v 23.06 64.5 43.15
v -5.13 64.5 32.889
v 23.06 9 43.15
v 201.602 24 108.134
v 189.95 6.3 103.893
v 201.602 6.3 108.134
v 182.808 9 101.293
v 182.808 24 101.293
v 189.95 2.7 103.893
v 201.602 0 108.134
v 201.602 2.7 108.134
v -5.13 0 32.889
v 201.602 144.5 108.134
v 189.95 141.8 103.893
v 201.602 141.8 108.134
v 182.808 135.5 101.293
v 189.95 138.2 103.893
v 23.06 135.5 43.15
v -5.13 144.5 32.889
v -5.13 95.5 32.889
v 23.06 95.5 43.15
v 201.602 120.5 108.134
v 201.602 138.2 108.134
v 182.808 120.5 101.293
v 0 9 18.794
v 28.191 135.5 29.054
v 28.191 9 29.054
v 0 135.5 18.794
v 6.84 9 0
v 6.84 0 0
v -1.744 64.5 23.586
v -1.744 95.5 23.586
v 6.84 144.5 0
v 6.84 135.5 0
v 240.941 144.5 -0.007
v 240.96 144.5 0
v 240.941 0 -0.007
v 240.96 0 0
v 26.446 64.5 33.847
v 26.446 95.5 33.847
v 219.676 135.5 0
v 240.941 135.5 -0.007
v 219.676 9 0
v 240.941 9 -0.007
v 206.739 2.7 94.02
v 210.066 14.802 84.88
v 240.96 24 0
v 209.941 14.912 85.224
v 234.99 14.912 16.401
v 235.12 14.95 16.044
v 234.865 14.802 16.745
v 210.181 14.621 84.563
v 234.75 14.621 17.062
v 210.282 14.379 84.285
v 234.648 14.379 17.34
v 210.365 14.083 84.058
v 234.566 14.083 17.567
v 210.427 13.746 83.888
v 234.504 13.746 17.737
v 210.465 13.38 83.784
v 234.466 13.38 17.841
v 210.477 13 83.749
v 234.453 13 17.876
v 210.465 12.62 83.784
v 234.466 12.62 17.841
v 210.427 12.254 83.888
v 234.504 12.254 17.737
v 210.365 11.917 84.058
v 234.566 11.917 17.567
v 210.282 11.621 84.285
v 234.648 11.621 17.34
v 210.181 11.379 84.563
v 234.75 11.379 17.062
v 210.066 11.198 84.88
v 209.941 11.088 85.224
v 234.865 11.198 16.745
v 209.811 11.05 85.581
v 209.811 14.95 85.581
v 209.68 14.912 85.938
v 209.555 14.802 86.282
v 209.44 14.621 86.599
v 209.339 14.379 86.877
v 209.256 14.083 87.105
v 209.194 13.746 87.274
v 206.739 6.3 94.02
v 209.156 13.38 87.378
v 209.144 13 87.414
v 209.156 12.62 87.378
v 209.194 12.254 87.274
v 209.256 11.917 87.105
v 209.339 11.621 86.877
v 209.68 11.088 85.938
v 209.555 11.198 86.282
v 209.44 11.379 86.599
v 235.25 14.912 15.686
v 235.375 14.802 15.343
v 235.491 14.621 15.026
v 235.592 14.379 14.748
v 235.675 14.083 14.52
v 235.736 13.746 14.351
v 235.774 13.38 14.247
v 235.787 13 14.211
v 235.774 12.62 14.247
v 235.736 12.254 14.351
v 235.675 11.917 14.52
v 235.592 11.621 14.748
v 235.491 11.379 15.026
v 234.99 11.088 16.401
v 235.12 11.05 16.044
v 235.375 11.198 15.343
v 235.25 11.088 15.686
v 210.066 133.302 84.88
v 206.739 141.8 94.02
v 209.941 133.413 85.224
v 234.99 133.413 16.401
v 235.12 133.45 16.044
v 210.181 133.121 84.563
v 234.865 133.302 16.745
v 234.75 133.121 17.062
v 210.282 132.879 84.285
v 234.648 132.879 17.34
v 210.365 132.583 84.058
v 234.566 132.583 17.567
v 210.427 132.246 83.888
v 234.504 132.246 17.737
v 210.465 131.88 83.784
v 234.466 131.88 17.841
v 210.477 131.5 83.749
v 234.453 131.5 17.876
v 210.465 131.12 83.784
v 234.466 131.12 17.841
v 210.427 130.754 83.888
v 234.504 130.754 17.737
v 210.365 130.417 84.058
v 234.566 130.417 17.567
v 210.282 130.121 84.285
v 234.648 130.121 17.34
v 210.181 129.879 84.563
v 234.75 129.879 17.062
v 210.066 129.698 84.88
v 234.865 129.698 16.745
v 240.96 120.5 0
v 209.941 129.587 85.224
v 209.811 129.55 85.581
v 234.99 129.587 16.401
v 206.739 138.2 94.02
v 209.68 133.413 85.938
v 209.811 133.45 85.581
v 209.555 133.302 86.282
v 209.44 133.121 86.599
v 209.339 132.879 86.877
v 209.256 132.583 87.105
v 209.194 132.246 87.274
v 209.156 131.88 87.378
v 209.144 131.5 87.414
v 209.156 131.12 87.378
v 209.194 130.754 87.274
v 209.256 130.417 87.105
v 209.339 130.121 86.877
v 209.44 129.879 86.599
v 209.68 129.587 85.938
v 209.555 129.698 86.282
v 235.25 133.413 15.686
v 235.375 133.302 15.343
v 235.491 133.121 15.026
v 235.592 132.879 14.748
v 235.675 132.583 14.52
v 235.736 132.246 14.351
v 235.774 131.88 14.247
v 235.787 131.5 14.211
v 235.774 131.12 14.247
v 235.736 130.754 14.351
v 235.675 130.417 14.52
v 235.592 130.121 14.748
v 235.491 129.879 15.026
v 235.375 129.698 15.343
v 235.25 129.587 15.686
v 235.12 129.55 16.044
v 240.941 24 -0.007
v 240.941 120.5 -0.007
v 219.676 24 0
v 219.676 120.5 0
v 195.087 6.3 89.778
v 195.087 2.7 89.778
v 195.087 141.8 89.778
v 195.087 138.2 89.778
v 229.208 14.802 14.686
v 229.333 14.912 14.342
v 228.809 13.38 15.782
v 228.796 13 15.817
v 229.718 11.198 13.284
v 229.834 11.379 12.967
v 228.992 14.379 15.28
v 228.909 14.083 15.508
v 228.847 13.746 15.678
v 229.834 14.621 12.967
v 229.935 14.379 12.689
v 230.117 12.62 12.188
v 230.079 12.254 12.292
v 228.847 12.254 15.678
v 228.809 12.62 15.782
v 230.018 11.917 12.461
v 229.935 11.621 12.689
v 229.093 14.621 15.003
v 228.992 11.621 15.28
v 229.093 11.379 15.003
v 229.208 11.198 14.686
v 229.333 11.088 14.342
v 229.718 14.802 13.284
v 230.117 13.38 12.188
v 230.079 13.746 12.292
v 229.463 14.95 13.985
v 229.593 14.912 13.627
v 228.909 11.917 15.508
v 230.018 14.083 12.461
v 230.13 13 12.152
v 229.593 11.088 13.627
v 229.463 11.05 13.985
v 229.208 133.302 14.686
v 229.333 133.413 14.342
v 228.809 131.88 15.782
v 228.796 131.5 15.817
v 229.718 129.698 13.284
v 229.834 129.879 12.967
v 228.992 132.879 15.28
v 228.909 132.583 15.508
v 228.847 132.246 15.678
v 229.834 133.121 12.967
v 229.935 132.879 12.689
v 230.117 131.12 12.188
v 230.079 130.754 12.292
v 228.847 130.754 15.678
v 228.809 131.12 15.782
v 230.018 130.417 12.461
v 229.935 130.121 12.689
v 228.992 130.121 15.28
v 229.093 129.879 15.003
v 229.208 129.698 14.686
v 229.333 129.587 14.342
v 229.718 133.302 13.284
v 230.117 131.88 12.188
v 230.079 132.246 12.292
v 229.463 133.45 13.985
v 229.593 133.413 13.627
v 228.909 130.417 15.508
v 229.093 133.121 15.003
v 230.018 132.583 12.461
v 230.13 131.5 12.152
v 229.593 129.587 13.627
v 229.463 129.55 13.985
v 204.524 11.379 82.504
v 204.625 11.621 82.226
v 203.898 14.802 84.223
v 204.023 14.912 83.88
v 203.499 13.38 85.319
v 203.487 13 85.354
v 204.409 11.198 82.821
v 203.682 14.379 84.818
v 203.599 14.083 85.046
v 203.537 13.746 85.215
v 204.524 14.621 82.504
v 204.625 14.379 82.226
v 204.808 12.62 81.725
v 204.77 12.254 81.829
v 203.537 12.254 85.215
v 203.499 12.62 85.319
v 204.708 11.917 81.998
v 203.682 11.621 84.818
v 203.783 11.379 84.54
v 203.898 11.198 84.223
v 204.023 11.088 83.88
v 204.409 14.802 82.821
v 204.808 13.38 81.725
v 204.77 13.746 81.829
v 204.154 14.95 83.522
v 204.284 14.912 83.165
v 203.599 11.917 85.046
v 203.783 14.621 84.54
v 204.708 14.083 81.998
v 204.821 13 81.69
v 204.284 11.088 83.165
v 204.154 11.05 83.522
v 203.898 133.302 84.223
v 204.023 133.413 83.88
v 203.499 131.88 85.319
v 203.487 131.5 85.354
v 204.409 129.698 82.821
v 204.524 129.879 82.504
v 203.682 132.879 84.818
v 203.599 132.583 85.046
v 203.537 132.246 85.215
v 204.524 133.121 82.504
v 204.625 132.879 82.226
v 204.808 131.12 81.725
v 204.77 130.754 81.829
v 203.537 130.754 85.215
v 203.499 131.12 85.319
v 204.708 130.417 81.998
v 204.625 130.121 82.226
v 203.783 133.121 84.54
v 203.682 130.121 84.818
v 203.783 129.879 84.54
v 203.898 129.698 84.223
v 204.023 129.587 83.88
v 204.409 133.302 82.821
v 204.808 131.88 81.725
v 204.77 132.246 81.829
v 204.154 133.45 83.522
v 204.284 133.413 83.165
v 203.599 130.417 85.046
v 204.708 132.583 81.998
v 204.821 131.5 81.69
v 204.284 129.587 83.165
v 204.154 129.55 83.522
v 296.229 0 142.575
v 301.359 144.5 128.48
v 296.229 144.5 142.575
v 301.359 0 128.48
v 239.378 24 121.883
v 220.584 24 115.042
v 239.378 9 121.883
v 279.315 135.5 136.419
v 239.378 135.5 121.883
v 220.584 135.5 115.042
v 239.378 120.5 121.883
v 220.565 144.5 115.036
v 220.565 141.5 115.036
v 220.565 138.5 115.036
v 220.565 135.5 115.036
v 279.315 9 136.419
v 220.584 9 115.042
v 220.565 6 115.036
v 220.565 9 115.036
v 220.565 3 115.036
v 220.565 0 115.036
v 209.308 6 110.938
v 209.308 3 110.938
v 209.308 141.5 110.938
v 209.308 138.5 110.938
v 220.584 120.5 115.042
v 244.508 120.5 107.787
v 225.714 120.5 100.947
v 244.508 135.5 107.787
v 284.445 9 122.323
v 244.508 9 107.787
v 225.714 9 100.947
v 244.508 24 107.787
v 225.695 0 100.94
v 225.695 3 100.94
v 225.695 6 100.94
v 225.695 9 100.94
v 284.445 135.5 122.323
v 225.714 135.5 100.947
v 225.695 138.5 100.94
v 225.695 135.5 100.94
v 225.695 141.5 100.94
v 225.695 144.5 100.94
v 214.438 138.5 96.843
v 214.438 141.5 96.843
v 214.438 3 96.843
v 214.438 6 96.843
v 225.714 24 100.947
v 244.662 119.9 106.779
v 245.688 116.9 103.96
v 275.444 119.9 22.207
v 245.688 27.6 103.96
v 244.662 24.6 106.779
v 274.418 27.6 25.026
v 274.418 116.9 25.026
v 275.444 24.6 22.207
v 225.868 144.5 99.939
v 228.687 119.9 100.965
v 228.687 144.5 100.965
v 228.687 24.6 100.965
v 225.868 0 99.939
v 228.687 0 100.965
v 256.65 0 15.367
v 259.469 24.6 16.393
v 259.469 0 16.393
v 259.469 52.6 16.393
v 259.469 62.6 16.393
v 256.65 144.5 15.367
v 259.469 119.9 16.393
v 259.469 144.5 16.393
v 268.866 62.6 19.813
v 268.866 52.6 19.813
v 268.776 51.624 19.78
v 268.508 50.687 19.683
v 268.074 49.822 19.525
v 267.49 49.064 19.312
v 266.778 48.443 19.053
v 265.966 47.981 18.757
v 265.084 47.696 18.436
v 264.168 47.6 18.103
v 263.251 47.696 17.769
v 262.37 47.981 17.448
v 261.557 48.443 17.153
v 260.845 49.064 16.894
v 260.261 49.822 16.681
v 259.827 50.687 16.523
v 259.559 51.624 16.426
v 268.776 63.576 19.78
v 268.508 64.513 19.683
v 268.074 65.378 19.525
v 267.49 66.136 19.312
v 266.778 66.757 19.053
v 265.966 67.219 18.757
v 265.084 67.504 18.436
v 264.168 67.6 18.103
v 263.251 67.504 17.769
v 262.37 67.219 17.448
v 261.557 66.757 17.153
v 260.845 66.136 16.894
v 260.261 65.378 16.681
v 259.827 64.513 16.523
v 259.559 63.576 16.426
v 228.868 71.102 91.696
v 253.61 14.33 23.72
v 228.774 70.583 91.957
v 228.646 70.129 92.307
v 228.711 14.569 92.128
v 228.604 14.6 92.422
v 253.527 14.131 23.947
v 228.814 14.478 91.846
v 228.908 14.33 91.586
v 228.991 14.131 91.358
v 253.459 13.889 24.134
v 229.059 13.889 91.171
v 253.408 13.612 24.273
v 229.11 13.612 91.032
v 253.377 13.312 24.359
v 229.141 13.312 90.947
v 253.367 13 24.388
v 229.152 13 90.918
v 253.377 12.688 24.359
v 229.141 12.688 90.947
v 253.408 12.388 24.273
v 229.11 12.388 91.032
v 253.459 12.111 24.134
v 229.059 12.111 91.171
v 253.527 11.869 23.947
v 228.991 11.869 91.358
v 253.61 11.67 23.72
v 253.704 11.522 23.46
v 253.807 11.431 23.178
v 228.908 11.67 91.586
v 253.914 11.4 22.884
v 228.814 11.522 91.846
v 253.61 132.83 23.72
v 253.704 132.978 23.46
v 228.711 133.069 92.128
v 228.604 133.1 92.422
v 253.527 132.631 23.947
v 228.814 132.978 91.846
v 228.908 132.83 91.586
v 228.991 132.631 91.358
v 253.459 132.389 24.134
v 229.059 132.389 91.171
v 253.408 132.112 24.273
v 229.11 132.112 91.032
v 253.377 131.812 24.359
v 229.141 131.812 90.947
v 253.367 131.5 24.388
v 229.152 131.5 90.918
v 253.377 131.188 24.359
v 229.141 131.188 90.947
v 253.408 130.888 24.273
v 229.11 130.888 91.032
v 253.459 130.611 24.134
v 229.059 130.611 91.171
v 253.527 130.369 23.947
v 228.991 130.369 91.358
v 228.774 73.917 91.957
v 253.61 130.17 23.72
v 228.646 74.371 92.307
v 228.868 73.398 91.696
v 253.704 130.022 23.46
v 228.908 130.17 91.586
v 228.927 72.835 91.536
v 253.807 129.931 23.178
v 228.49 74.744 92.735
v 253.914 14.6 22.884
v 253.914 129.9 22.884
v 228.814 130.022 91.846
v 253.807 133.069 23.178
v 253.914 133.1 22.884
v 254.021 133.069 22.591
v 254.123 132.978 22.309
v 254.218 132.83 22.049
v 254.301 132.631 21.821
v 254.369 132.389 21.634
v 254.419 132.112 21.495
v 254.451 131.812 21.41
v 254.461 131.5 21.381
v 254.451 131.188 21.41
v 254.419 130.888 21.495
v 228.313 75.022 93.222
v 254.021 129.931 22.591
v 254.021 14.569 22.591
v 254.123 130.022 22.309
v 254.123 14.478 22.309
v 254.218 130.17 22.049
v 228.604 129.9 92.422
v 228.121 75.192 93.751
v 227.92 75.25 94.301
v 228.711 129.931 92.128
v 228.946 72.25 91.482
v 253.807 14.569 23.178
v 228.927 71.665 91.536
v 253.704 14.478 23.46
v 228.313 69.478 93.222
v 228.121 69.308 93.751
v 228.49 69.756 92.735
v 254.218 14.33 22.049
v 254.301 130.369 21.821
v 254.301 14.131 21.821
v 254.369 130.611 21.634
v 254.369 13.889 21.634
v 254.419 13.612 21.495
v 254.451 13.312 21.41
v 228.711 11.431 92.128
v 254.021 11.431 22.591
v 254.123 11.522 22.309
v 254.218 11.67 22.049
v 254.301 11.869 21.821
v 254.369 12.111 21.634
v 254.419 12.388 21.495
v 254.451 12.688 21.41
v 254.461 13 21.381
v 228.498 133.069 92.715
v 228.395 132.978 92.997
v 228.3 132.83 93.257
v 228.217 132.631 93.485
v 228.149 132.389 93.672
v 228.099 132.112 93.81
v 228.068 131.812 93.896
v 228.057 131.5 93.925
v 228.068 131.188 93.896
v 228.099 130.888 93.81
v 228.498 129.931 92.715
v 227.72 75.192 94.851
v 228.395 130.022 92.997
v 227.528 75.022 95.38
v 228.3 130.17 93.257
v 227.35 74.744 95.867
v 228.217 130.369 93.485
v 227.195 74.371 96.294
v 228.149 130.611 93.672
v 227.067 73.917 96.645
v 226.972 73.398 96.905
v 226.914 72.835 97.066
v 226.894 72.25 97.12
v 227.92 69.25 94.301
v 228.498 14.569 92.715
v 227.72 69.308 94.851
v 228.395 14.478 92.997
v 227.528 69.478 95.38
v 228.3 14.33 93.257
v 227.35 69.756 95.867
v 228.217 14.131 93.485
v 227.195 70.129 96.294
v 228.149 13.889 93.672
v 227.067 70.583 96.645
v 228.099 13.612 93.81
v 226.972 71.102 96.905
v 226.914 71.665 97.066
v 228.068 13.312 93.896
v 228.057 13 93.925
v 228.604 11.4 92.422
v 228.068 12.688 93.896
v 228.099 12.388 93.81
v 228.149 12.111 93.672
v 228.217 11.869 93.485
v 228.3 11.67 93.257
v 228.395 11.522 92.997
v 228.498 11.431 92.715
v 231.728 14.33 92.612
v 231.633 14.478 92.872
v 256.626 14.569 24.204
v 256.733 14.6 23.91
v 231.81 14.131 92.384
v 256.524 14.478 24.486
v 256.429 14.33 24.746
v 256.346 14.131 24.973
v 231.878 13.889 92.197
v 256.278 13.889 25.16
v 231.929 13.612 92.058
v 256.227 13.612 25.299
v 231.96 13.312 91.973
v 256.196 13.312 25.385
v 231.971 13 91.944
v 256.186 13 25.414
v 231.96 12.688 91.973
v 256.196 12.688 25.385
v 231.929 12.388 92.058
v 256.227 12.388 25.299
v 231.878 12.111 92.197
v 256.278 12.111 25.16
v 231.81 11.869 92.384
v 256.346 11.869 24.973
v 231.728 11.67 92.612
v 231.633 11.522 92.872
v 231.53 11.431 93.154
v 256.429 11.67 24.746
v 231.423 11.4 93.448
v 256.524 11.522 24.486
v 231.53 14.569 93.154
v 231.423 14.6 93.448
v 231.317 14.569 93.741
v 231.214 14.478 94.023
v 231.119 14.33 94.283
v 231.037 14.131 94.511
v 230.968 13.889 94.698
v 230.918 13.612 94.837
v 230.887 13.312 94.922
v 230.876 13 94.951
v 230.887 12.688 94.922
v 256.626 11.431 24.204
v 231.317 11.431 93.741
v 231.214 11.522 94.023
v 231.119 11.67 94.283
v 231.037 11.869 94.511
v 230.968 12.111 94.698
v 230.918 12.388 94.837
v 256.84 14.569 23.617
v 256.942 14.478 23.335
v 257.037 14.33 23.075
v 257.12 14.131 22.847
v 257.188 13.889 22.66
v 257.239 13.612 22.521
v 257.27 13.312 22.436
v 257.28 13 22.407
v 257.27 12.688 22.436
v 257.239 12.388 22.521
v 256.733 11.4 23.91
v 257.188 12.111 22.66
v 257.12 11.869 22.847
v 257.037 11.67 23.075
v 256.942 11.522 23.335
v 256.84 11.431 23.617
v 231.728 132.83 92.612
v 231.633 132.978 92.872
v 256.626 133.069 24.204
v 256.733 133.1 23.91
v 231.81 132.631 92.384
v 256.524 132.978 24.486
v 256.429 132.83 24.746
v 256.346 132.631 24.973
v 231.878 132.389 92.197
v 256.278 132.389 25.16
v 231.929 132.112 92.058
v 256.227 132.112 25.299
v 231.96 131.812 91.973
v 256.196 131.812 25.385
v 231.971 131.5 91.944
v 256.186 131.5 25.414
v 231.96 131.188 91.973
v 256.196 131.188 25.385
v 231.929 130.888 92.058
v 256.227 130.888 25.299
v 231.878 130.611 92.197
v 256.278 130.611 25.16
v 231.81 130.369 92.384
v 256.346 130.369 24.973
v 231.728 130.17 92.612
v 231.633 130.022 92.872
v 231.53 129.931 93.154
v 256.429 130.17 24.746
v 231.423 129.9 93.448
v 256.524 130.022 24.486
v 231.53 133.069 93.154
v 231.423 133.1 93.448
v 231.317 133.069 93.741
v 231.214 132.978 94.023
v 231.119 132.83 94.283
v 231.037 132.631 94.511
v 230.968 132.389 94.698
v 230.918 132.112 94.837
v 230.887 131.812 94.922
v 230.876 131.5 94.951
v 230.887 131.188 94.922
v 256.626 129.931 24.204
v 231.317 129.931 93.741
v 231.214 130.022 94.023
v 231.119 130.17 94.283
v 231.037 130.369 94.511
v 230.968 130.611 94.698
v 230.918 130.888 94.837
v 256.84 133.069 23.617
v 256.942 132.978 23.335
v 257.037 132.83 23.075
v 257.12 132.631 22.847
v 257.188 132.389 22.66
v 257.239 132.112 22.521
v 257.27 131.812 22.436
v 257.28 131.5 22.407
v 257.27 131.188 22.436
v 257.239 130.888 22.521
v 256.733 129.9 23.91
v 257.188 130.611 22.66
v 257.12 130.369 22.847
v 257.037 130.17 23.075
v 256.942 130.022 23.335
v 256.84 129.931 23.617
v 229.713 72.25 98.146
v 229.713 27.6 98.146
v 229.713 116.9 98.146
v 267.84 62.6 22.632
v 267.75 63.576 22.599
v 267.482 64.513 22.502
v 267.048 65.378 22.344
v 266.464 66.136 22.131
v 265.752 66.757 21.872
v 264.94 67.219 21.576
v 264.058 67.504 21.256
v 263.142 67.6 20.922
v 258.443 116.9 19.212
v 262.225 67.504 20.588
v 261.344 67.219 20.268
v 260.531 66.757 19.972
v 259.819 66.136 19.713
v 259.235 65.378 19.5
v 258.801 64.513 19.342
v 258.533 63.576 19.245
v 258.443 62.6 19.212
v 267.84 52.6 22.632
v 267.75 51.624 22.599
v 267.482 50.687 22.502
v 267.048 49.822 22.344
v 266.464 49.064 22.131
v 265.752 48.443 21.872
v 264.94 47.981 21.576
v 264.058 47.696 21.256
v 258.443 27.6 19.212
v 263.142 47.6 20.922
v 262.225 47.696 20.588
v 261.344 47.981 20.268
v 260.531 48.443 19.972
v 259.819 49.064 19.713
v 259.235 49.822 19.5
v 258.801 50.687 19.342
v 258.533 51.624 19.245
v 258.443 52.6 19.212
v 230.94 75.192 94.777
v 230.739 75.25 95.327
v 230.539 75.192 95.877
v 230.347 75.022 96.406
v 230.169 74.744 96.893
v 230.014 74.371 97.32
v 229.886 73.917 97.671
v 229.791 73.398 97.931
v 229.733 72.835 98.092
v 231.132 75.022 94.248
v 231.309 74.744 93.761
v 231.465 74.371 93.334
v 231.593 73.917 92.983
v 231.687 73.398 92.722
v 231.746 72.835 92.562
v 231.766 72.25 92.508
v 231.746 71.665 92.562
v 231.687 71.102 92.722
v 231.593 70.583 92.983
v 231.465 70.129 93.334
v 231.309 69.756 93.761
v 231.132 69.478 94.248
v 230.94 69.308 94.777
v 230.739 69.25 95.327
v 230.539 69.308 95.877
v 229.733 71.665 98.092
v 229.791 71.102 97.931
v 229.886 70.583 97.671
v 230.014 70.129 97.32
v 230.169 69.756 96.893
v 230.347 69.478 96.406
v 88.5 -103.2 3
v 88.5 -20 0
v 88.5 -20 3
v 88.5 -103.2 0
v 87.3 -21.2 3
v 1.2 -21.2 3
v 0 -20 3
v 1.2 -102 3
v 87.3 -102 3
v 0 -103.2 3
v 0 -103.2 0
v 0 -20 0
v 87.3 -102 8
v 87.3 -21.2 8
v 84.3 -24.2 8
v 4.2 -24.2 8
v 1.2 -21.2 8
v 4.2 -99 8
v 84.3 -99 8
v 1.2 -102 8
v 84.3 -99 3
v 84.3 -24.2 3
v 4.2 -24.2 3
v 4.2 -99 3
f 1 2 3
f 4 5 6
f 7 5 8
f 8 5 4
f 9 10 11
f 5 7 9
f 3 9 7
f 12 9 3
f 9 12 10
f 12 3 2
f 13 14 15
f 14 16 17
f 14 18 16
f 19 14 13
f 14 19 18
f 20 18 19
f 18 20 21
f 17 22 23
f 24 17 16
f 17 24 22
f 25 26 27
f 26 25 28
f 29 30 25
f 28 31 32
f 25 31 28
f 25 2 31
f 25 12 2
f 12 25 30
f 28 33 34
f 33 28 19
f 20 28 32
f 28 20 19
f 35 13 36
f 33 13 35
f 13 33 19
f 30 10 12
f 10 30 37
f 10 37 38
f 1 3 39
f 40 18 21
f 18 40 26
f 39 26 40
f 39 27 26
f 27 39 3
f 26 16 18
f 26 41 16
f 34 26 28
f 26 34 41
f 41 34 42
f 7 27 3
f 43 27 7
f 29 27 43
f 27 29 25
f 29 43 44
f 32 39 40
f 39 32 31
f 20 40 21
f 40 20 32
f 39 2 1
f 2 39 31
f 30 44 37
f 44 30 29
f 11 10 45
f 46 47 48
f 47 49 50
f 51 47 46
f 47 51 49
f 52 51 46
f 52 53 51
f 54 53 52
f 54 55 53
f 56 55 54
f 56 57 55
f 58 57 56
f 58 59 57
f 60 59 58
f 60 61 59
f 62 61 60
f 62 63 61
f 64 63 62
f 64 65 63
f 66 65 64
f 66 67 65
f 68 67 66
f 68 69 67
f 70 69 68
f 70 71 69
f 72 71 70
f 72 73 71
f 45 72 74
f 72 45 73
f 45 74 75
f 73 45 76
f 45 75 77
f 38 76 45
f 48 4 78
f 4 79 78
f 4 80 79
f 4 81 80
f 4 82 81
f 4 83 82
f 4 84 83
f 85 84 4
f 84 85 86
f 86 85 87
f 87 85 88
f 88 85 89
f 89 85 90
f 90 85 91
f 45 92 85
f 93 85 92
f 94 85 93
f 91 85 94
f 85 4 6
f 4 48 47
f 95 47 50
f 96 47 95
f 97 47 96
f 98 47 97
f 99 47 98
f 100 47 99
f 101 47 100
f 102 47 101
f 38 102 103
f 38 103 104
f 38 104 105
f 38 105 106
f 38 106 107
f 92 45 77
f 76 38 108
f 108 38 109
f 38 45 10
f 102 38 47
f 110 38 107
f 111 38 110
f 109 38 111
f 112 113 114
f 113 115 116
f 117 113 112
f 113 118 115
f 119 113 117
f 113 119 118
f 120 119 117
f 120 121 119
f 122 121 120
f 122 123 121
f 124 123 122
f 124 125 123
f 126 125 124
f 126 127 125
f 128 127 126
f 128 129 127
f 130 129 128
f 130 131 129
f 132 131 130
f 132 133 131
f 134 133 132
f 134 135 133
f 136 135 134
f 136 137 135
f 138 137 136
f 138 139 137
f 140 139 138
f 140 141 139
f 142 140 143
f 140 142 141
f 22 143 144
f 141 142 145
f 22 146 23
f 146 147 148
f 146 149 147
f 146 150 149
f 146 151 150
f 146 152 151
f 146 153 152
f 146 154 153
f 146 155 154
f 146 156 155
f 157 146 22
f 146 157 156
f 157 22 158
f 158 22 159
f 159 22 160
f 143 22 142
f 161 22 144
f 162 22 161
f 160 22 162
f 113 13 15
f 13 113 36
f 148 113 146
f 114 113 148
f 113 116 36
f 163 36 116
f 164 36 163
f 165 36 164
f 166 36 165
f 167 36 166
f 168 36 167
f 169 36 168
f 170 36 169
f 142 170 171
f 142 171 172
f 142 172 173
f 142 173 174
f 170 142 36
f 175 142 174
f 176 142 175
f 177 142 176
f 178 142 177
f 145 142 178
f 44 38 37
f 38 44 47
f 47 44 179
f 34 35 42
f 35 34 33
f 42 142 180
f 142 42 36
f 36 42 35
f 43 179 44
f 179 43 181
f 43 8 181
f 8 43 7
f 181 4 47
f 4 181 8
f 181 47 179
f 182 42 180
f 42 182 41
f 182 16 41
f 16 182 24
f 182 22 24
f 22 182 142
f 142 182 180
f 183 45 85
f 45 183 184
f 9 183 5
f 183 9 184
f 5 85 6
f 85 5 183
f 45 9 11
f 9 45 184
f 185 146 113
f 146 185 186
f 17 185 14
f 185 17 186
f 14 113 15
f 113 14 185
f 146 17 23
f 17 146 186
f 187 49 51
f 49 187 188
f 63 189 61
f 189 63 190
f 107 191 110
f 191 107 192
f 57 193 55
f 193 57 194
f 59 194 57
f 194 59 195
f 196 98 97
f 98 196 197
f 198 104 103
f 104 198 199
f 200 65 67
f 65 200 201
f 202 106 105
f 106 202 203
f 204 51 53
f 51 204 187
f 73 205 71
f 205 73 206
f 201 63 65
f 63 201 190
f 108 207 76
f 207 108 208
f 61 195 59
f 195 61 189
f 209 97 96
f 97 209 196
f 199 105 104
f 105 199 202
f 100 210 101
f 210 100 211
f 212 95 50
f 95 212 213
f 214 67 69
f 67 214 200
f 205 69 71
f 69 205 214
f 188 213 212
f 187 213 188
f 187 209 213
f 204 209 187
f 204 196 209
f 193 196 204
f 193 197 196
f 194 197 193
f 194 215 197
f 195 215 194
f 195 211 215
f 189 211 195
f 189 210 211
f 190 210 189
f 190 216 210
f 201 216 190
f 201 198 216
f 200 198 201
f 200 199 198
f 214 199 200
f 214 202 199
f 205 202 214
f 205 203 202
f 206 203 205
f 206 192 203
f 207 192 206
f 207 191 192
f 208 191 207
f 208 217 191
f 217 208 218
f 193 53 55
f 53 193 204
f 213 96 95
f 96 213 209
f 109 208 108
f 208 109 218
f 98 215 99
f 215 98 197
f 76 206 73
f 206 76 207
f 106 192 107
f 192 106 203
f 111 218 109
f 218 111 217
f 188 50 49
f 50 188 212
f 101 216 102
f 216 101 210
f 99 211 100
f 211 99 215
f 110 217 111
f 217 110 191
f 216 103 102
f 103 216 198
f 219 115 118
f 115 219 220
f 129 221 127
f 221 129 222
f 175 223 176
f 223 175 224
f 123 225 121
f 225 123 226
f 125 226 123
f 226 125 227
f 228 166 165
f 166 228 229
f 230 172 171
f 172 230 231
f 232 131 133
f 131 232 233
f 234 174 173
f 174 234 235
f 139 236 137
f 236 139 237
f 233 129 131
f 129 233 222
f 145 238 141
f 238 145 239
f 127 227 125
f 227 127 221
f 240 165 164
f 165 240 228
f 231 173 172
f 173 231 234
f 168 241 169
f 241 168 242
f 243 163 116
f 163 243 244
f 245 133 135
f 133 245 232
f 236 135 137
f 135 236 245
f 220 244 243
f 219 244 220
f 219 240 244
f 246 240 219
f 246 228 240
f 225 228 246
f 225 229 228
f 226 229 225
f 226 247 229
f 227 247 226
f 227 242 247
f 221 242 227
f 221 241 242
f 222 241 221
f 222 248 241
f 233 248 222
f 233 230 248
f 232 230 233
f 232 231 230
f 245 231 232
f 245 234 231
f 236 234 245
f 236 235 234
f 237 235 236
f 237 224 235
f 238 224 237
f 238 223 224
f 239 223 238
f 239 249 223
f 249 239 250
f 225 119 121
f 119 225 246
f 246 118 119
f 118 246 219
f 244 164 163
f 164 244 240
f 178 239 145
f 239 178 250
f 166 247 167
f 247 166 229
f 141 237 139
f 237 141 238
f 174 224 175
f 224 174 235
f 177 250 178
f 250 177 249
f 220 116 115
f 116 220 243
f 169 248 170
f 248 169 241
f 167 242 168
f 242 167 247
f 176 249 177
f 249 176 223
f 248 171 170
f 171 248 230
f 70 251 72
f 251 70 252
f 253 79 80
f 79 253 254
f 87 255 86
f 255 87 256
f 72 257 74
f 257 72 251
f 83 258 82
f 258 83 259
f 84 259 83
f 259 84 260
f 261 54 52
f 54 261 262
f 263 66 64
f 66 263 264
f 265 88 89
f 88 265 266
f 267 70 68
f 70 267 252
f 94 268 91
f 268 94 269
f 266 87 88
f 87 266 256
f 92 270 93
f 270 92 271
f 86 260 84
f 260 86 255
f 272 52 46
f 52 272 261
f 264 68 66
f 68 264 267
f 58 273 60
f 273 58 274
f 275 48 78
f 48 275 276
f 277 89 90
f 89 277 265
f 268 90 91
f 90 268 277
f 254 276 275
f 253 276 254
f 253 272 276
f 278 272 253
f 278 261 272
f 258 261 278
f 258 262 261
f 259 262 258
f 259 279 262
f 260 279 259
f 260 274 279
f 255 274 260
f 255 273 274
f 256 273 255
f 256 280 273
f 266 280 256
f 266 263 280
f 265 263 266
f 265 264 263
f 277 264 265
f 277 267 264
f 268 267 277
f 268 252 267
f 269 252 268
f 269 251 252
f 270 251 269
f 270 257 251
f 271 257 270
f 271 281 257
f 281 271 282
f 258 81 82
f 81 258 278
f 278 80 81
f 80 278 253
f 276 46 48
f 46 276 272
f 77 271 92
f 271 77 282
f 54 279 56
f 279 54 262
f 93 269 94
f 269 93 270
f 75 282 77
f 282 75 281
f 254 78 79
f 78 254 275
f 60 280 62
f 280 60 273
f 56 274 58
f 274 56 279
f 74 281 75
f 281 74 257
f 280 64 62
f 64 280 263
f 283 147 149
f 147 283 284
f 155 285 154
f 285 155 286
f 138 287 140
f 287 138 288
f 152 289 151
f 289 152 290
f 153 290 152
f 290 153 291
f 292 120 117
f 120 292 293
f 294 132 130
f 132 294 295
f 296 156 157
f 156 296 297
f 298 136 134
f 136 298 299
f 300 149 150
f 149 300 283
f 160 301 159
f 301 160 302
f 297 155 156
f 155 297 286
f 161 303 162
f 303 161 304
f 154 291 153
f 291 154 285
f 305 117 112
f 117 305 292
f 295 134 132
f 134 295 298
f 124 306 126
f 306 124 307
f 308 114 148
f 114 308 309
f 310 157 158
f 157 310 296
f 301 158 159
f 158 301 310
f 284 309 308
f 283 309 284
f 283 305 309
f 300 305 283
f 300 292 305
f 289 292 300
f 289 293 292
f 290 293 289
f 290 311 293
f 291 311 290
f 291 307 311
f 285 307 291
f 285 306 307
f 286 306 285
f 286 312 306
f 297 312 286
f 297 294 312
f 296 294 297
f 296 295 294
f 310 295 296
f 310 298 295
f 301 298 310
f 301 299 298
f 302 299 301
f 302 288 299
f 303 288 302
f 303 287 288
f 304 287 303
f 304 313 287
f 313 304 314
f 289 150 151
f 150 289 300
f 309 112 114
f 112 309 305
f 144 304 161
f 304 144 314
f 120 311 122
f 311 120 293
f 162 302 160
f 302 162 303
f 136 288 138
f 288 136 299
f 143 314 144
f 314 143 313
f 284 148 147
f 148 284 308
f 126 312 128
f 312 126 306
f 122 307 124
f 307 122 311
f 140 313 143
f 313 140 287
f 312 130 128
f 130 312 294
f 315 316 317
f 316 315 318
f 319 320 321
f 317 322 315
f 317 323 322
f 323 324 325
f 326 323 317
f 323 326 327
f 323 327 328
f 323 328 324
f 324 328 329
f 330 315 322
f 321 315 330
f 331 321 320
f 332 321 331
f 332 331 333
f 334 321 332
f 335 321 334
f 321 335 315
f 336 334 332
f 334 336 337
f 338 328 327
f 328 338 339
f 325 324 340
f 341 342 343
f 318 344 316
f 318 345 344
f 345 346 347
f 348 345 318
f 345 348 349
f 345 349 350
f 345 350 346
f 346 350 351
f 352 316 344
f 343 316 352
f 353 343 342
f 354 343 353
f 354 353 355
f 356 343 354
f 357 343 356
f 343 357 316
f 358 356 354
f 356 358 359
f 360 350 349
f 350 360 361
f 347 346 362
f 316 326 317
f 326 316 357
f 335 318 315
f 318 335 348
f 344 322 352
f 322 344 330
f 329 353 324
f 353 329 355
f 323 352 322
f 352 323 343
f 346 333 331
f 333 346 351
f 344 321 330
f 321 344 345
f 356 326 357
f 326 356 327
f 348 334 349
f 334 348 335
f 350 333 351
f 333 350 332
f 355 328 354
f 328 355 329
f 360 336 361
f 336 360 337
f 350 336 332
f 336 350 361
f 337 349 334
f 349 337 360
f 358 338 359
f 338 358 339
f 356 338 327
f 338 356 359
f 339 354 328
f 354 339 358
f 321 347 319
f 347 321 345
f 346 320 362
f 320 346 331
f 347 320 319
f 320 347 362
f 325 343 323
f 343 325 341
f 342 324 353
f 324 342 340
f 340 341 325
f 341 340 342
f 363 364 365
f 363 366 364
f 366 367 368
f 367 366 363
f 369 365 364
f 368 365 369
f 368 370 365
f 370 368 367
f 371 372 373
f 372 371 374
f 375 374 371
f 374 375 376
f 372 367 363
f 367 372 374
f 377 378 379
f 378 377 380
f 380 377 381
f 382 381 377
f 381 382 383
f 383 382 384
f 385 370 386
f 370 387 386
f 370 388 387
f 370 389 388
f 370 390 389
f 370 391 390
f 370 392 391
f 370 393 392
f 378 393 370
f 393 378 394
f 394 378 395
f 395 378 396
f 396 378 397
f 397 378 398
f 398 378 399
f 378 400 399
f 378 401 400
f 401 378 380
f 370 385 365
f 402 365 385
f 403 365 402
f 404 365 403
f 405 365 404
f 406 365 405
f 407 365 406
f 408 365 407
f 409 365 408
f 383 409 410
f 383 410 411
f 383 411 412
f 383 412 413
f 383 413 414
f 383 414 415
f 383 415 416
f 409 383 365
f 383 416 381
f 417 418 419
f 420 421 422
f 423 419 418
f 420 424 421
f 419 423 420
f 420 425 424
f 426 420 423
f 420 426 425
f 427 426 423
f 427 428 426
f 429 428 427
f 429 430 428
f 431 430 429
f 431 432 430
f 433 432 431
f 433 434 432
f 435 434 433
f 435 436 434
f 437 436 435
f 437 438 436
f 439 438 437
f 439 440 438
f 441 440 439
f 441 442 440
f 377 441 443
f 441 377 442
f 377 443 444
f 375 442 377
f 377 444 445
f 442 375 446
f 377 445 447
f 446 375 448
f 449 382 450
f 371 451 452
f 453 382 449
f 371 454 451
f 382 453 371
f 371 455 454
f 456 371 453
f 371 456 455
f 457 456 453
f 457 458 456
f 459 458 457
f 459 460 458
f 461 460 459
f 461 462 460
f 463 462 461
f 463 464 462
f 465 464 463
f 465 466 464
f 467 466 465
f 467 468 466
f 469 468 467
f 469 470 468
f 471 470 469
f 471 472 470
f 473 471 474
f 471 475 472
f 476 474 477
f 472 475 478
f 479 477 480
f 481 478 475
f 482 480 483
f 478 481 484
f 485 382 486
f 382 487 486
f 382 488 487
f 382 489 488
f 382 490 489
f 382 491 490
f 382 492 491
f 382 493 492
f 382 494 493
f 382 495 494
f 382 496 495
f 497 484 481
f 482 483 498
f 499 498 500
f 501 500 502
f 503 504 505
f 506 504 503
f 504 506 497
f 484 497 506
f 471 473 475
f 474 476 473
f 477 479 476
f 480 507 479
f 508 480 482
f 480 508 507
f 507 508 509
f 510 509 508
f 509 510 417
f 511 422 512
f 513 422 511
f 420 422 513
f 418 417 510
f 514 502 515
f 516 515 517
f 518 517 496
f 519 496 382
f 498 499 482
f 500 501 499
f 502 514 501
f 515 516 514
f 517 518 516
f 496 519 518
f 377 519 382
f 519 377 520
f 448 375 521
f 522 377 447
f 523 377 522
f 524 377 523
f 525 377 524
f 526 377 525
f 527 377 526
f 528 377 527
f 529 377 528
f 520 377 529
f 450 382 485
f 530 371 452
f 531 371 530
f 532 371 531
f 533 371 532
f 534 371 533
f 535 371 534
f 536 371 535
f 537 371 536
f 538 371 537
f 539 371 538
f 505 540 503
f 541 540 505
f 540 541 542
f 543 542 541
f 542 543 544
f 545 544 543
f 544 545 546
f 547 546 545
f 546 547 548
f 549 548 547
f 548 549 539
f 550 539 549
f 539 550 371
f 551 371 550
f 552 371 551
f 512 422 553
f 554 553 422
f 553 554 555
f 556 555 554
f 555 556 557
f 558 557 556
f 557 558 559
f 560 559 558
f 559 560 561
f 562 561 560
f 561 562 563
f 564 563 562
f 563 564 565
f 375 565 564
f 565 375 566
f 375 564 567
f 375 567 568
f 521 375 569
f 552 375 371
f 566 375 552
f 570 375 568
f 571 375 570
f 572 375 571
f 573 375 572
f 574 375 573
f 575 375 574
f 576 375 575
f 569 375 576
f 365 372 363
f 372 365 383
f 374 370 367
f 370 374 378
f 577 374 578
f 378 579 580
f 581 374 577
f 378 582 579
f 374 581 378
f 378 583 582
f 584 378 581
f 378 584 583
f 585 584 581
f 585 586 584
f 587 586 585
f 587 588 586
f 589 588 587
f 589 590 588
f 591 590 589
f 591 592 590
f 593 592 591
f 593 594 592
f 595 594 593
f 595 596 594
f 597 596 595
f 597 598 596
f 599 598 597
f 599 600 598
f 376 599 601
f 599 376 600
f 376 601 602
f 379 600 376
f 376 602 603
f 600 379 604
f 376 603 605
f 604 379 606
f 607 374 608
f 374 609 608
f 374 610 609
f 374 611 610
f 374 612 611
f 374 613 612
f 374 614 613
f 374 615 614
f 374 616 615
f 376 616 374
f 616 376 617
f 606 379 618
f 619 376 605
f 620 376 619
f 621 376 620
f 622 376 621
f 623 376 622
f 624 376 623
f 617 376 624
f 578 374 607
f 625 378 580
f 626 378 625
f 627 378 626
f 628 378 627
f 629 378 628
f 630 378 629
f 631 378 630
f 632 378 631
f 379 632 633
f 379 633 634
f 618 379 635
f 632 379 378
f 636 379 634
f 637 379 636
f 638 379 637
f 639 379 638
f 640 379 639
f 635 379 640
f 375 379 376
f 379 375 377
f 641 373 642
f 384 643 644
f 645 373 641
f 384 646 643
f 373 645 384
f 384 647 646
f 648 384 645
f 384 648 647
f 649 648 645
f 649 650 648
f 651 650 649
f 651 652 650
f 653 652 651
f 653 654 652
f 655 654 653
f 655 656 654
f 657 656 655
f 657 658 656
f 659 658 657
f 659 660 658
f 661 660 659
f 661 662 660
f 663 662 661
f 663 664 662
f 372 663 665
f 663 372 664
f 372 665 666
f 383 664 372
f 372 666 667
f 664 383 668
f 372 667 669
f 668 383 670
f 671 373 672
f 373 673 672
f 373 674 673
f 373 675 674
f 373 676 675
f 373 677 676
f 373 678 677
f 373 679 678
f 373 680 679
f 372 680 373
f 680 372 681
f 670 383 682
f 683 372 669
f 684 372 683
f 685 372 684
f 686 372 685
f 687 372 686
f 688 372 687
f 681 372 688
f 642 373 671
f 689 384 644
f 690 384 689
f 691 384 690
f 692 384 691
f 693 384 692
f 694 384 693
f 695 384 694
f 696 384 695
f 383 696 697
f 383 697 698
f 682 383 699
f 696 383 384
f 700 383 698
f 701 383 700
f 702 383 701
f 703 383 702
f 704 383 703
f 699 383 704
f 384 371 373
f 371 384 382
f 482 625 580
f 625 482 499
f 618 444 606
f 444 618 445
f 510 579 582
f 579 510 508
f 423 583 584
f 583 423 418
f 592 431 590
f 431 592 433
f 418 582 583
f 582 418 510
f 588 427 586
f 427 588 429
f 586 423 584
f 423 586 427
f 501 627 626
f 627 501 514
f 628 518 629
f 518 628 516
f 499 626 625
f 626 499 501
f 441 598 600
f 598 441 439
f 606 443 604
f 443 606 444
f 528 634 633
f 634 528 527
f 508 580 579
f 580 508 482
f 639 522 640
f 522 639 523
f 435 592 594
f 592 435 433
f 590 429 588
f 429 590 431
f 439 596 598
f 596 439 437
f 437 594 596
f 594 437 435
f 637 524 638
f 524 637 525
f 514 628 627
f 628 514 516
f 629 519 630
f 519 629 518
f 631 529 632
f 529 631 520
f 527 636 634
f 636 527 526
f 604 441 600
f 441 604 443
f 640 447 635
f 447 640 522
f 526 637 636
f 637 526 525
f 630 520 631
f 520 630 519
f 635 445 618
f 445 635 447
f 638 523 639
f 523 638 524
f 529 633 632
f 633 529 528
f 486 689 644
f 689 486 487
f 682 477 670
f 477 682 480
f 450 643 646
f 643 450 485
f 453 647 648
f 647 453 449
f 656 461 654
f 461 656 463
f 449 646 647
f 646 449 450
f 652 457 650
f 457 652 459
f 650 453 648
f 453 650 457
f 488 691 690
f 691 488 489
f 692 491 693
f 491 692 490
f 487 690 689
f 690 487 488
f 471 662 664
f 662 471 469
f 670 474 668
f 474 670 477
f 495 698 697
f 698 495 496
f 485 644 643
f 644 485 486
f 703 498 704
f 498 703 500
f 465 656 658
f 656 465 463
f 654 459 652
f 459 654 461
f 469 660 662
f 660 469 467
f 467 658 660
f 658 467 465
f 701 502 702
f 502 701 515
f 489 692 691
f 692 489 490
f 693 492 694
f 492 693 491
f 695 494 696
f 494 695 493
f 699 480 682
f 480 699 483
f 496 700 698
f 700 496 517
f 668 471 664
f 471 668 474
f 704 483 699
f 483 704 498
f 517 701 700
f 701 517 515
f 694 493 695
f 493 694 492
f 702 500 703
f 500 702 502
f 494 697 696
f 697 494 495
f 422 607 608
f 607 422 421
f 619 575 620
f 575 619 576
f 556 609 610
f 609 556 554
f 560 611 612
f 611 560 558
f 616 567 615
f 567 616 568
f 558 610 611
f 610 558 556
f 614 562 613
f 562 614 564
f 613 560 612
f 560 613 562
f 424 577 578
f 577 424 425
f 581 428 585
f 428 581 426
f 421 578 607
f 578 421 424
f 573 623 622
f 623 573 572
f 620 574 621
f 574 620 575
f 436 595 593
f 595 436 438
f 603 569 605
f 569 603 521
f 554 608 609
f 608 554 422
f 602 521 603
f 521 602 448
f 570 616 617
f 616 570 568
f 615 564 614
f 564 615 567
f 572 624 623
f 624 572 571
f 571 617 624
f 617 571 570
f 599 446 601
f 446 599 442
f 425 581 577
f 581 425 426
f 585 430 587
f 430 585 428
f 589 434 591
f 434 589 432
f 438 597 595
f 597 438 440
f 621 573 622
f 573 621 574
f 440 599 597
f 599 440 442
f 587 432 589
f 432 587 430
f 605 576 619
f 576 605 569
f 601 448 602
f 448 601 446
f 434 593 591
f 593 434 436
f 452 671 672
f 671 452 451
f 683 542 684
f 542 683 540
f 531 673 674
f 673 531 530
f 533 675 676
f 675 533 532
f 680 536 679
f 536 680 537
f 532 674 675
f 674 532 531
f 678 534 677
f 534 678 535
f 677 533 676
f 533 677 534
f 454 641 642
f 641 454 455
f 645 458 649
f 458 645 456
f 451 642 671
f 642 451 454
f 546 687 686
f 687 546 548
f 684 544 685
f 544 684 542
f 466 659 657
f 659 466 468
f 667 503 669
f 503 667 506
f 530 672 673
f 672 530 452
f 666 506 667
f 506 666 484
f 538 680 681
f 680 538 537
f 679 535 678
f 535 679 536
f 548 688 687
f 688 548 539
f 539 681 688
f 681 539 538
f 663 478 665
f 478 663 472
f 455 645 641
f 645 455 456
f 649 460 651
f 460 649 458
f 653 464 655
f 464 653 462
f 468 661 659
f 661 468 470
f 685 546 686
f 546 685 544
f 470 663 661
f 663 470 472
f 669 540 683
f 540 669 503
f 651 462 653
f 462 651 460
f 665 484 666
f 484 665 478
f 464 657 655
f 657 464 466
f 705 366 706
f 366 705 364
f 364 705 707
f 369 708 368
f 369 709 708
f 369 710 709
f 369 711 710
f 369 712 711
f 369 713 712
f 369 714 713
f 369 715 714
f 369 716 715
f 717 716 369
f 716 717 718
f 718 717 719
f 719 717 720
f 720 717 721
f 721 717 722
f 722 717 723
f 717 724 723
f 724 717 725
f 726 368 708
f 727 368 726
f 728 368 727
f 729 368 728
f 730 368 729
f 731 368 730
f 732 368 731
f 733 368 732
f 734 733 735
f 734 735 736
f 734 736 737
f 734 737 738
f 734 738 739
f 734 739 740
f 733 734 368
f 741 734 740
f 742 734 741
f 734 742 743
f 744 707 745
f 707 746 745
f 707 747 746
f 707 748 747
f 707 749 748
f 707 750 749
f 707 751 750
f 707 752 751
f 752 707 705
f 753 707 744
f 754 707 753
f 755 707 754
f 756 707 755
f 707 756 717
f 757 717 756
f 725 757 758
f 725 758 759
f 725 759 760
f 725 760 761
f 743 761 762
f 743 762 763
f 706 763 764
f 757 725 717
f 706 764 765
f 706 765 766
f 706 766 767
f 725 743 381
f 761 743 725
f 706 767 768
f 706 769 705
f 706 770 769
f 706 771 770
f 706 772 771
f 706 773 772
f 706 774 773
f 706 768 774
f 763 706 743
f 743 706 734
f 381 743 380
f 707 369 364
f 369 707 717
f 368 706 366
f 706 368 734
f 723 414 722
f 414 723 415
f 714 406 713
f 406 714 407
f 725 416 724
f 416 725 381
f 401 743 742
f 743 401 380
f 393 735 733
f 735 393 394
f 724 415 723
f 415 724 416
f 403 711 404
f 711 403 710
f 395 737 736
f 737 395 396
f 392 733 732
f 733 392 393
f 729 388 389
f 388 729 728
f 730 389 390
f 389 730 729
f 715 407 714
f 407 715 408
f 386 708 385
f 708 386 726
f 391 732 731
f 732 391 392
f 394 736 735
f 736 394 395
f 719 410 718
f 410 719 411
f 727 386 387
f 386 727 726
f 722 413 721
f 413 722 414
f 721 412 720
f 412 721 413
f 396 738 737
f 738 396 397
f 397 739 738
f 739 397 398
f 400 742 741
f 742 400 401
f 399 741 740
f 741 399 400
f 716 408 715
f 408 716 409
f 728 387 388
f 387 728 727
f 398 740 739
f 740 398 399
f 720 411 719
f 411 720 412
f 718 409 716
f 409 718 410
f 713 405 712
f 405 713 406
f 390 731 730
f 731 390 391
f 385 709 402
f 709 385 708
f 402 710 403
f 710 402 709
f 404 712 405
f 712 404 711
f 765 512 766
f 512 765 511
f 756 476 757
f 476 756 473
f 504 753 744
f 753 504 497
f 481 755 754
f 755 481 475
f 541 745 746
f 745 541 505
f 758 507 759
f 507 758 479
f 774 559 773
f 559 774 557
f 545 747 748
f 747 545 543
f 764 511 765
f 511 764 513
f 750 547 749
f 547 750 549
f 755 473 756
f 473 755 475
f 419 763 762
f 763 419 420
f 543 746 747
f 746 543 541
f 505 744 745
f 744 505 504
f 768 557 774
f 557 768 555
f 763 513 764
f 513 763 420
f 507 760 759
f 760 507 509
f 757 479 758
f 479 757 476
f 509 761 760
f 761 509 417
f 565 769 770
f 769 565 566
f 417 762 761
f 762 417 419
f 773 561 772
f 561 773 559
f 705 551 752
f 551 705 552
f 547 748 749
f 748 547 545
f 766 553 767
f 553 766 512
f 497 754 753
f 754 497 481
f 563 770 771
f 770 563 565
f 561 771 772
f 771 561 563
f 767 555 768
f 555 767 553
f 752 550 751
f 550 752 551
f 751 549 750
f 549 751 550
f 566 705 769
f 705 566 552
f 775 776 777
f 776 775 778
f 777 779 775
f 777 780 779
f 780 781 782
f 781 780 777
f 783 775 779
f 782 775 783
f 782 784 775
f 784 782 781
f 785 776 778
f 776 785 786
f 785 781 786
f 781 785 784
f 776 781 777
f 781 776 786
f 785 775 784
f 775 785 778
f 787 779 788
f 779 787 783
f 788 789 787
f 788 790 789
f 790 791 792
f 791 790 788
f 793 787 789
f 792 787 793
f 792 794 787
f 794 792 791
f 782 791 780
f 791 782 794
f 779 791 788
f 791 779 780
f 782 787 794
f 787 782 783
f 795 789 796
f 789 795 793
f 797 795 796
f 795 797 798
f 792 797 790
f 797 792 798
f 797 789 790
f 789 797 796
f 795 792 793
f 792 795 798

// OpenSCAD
// RainSong solar-panel frame (not final until Stuart says so)
// Panel 300 x 144.5 mm glues on top of the frame (not dropped into the
// opening). Frame is as wide as the panel; 9 mm long rails sit under it.
// Length is base print 220 mm + far body 80.5 mm (+ kerf).
// Rails: 9 mm on both long sides, 18 mm far end, 30 mm base end, 15 mm high.
//
// Split along the length so it fits a printer bed. The two halves join with
// a full-height tongue-and-groove on each long rail: groove in the base
// piece, tongue on the far piece (so the long print does not grow).
// Joint is visible top and bottom.
//
// Long sides grow into a wedge from the base to the break so the frame sits
// on the floor at tilt_deg. Drop at the base is floor_clearance; at the
// break it is floor_clearance + base_face * tan(tilt_deg).
//
// Origin: outer corner of the base end, bottom of the 15 mm frame.
// +X along panel length (base → far end), +Y across the width, +Z up.
//
// part:
//   "assembled"  both halves + electronics box, sitting on the floor
//   "base"       piece from the base end to the split (grooves + side wedges)
//   "far"        piece from the split to the far end (tongues)
//   "box"        electronics box, closed back against the split, outside
//                (assembled preview: slid +X by explode, like the far half)
//   "lid"        slot-in lid for the box (top down, plug up)
//
// Override from the CLI, e.g.:
//   openscad -D 'part="base"' -D split_frac=0.63 -o frame_base.stl solar_panel_frame.scad
//   openscad -D 'part="box"' -o electronics_box.stl solar_panel_frame.scad
//   openscad -D 'part="lid"' -o electronics_box_lid.stl solar_panel_frame.scad

part = "assembled";

panel_length = 300.0;
panel_width  = 144.5;
frame_height = 15.0;

rail_long = 9.0;
rail_end  = 18.0;
rail_base = 30.0;

panel_clearance = 0.0;

kerf = 0.2;             // gap between the two printed faces, mm

// Break: base print 220 mm, far body 80.5 mm. Keep the split in the long
// rails (not in the 30 mm base or 18 mm end).
max_base_print = 220.0; // mm, base piece length
max_far_body   = 80.5;  // mm, far piece body (tongue extra is on top of this)
split_x_abs = -1;       // set >= 0 to place the break at an absolute X instead

// Tongue (far piece) / groove (base piece). Full frame height, through
// the rail, visible from the top and bottom. Not a hidden joint.
tongue_len       = 12.0;  // mm, along X
tongue_w         = 3.0;   // mm, across the rail (Y)
tongue_h         = frame_height;
tongue_clearance = 0.30;  // mm, each side of the groove (Y only)
tongue_extra     = 0.4;   // mm, groove deeper than the tongue

// Notch in the base end, from the top down, through the 30 mm rail.
// Y is measured from the far edge (y = outer_width), looking from the
// lowest (base) end.
base_cutout_y0 = 49.0;  // mm, start along Y from the far edge
base_cutout_y1 = 80.0;  // mm, end along Y from the far edge
base_cutout_h  = 9.9;   // mm, from the top of the frame down

// Sit on the floor at this angle. Side drop is perpendicular to the panel.
tilt_deg         = 20;
floor_clearance  = 20.0;  // mm, side drop at the base (x = 0)

explode = 20;           // mm, assembled preview: slide the far half +X to show the joint

// Extra width at the break for support. Inward on each long side
// (into the opening), running flare_len back from the split face.
flare_extra = 15.0;     // mm, each side
flare_len   = 20.0;     // mm, from the break

// Electronics box: fully below the frame, hanging off the split (outside
// the base half). Closed back against the split face; open toward the far
// end. 3 mm wings flush with that back, 24 mm wide (rail + flare), screw
// into the split face of the supports. No holes in the long-side rails.
box_depth      = 20.0;  // mm, along X, closed back at the split
box_z          = 90.0;  // mm, along Z, hanging down from the rim
box_wall       = 3.0;   // mm, walls and wings
box_under      = 1.0;   // mm, gap from the frame underside down to the box top
box_y_clear    = 0.6;   // mm, each side, aligned with the flare inner faces
screw_d        = 3.2;   // mm, M3 clearance through the wings
insert_d       = 3.9;   // mm, heat-set insert in the support legs
insert_depth   = 6.0;   // mm, into the flare from the split face
screw_edge     = 8.0;   // mm, hole centre in from the wing rim (Z)
screw_from_box = 11.0;  // mm, hole centre out from the flare inner face (Y)

// USB-C through the floor, back-left corner. Board is glued to the closed
// back, so the hole sits against the base. Generous vs a ~9 × 3.2 mm plug.
usb_slot_x     = 10.0;  // mm, along box depth
usb_slot_y     = 20.0;  // mm, along box width
usb_from_left  = 20.0;  // mm, extra inset from the left inner wall
base_hole_d    = 6.0;   // mm, through the closed back, top centre

// Lid slots into the open end of the box. Top face sits on the bed.
lid_clear      = 0.4;   // mm, each side, so it slides in
lid_cap        = 3.0;   // mm, outer plate (same as the walls)
lid_plug       = 5.0;   // mm, inner plug depth
lid_plug_inset = 1.2;   // mm, extra shrink of the plug for a lead-in
lid_rim        = 3.0;   // mm, frame left after hollowing the middle
lid_gap        = 20.0;  // mm, assembled preview: sit this far beside the frame

eps = 0.02;
$fn = 32;

outer_length = max_base_print + kerf + max_far_body;
outer_width  = panel_width;  // panel sits on top; no extra width outside the rails
split_frac   = (max_base_print + kerf / 2) / outer_length;

function split_x() =
    split_x_abs >= 0 ? split_x_abs : split_frac * outer_length;

function base_face() = split_x() - kerf / 2;
function far_face()  = split_x() + kerf / 2;

function groove_w() = tongue_w + 2 * tongue_clearance;
function groove_d() = tongue_len + tongue_extra;

function rail_ys() = [rail_long / 2, outer_width - rail_long / 2];

// Extra side depth under the 15 mm frame, from base to the break.
function side_drop(x) = floor_clearance + x * tan(tilt_deg);
function drop_at_break() = side_drop(base_face());

function opening_width() = outer_width - 2 * rail_long;
function opening_length() = outer_length - rail_base - rail_end;
function box_outer_y() = opening_width() - 2 * flare_extra - 2 * box_y_clear;
function box_z_top() = -box_under;
function box_z_bot() = box_z_top() - box_z;
function box_x0() = base_face();
function box_y0() = rail_long + flare_extra + box_y_clear;
function wing_width() = rail_long + flare_extra;
function wing_span() = box_y_clear + wing_width();
function wing_x0() = box_x0();

function screw_ys() = [
    rail_long + flare_extra - screw_from_box,
    outer_width - rail_long - flare_extra + screw_from_box
];
function screw_zs() = [
    box_z_bot() + screw_edge,
    box_z_top() - screw_edge
];

function lid_y() = box_outer_y() - 2 * box_wall - 2 * lid_clear;
function lid_z() = box_z - 2 * box_wall - 2 * lid_clear;
function lid_cut() = lid_plug_inset + lid_rim;

assert(
    split_x() >= rail_base + groove_d() + 2,
    "split is too close to the base end — lower split_frac or tongue_len"
);
assert(
    split_x() <= outer_length - rail_end - 2,
    "split is too close to the far end — raise split_frac"
);

echo(outer = [outer_length, outer_width, frame_height]);
echo(opening = [opening_length(), opening_width()]);
echo(split_x = split_x(), split_frac = split_frac);
echo(base_len = base_face(), far_len = outer_length - far_face() + tongue_len);
echo(tongue = [tongue_len, tongue_w, tongue_h]);
echo(groove = [groove_d(), groove_w(), frame_height]);
echo(base_cutout = [base_cutout_y1 - base_cutout_y0, base_cutout_h],
     base_cutout_y = [base_cutout_y0, base_cutout_y1]);
echo(tilt_deg = tilt_deg, floor_clearance = floor_clearance);
echo(side_drop_base = floor_clearance, side_drop_break = drop_at_break());
echo(side_height_break = drop_at_break() + frame_height);
echo(flare_extra = flare_extra, flare_len = flare_len);
echo(box_outer = [box_depth, box_outer_y(), box_z]);
echo(box_z_range = [box_z_bot(), box_z_top()]);
echo(box_inner = [
    box_depth - box_wall,
    box_outer_y() - 2 * box_wall,
    box_z - 2 * box_wall
]);
echo(usb_slot = [usb_slot_x, usb_slot_y]);
echo(base_hole_d = base_hole_d);
echo(lid = [lid_y(), lid_z(), lid_cap + lid_plug]);
echo(lid_opening = [
    lid_y() - 2 * lid_cut(),
    lid_z() - 2 * lid_cut()
]);

module base_cutout() {
    translate([
        -eps,
        outer_width - base_cutout_y1,
        frame_height - base_cutout_h
    ])
        cube([
            rail_base + 2 * eps,
            base_cutout_y1 - base_cutout_y0,
            base_cutout_h + eps
        ]);
}

module frame_solid() {
    difference() {
        cube([outer_length, outer_width, frame_height]);
        translate([
            rail_base - panel_clearance / 2,
            rail_long - panel_clearance / 2,
            -eps
        ])
            cube([
                opening_length() + panel_clearance,
                opening_width() + panel_clearance,
                frame_height + 2 * eps
            ]);
        base_cutout();
    }
}

module grooves() {
    for (y = rail_ys())
        translate([
            base_face() - groove_d(),
            y - groove_w() / 2,
            -eps
        ])
            cube([groove_d() + eps, groove_w(), frame_height + 2 * eps]);
}

module tongues() {
    for (y = rail_ys())
        translate([
            far_face() - tongue_len,
            y - tongue_w / 2,
            0
        ])
            cube([tongue_len + 1, tongue_w, tongue_h]);
}

module side_skirts() {
    h0 = floor_clearance;
    h1 = drop_at_break();
    for (y0 = [0, outer_width - rail_long])
        hull() {
            translate([0, y0, -h0])
                cube([eps, rail_long, h0 + frame_height]);
            translate([base_face() - eps, y0, -h1])
                cube([eps, rail_long, h1 + frame_height]);
        }
}

module flare_base() {
    x0 = base_face() - flare_len;
    x1 = base_face();
    h0 = side_drop(x0);
    h1 = drop_at_break();
    for (y0 = [rail_long, outer_width - rail_long - flare_extra])
        hull() {
            translate([x0, y0, -h0])
                cube([eps, flare_extra, h0 + frame_height]);
            translate([x1 - eps, y0, -h1])
                cube([eps, flare_extra, h1 + frame_height]);
        }
}

module flare_far() {
    for (y0 = [rail_long, outer_width - rail_long - flare_extra])
        translate([far_face(), y0, 0])
            cube([flare_len, flare_extra, frame_height]);
}

module electronics_box() {
    difference() {
        union() {
            translate([box_x0(), box_y0(), box_z_bot()])
                cube([box_depth, box_outer_y(), box_z]);
            translate([
                wing_x0(),
                box_y0() - wing_span(),
                box_z_bot()
            ])
                cube([box_wall, wing_span(), box_z]);
            translate([
                wing_x0(),
                box_y0() + box_outer_y(),
                box_z_bot()
            ])
                cube([box_wall, wing_span(), box_z]);
        }
        // Open toward the far end (+X). Closed back (and wings) at the split.
        translate([
            box_x0() + box_wall,
            box_y0() + box_wall,
            box_z_bot() + box_wall
        ])
            cube([
                box_depth - box_wall + eps,
                box_outer_y() - 2 * box_wall,
                box_z - 2 * box_wall
            ]);
        for (z = screw_zs())
            for (y = screw_ys())
                translate([wing_x0() + box_wall + eps, y, z])
                    rotate([0, -90, 0])
                        cylinder(d = screw_d, h = box_wall + 2 * eps);
        usb_hole();
        base_hole();
    }
}

module usb_hole() {
    r = usb_slot_x / 2;
    span = usb_slot_y - usb_slot_x;
    translate([
        box_x0() + box_wall + r,
        box_y0() + box_wall + usb_from_left + r,
        box_z_bot() - eps
    ])
        hull() {
            cylinder(r = r, h = box_wall + 2 * eps);
            translate([0, span, 0])
                cylinder(r = r, h = box_wall + 2 * eps);
        }
}

module base_hole() {
    translate([
        box_x0() - eps,
        box_y0() + box_outer_y() / 2,
        box_z_top() - box_wall - base_hole_d / 2
    ])
        rotate([0, 90, 0])
            cylinder(d = base_hole_d, h = box_wall + 2 * eps);
}

module lid() {
    // Top at z = 0 facing down. Solid 3 mm cover; hollow plug extends +Z.
    render()
        difference() {
            union() {
                cube([lid_y(), lid_z(), lid_cap]);
                translate([lid_plug_inset, lid_plug_inset, lid_cap - 1])
                    cube([
                        lid_y() - 2 * lid_plug_inset,
                        lid_z() - 2 * lid_plug_inset,
                        lid_plug + 1
                    ]);
            }
            translate([lid_cut(), lid_cut(), lid_cap])
                cube([
                    lid_y() - 2 * lid_cut(),
                    lid_z() - 2 * lid_cut(),
                    lid_plug + eps
                ]);
        }
}

module flare_insert_holes() {
    for (z = screw_zs())
        for (y = screw_ys())
            translate([base_face() + eps, y, z])
                rotate([0, -90, 0])
                    cylinder(d = insert_d, h = insert_depth + 2 * eps);
}

module base_half() {
    difference() {
        union() {
            frame_solid();
            side_skirts();
            flare_base();
        }
            translate([base_face(), -1, -drop_at_break() - 1])
            cube([
                outer_length,
                outer_width + 2,
                drop_at_break() + frame_height + 2
            ]);
        grooves();
        flare_insert_holes();
    }
}

module far_half() {
    union() {
        difference() {
            frame_solid();
            translate([-eps, -eps, -eps])
                cube([
                    far_face(),
                    outer_width + 2 * eps,
                    frame_height + 2 * eps
                ]);
        }
        tongues();
        flare_far();
    }
}

// Rotate so the wedge bottoms sit on z = 0 and the panel is at tilt_deg.
module on_floor() {
    translate([0, 0, floor_clearance * cos(tilt_deg)])
        rotate([0, -tilt_deg, 0])
            children();
}

module assembled() {
    on_floor() {
        color("SteelBlue")
            base_half();
        color("Goldenrod")
            translate([explode, 0, 0])
                far_half();
        color("Olive")
            translate([explode, 0, 0])
                electronics_box();
    }
    color("Tan")
        translate([0, -lid_gap - lid_z(), 0])
            lid();
}

if (part == "base")
    on_floor()
        base_half();
else if (part == "far")
    translate([-(far_face() - tongue_len), 0, 0])
        far_half();
else if (part == "box")
    // Open (far-facing) side on the bed.
    translate([0, wing_span(), box_depth])
        rotate([0, 90, 0])
            translate([-box_x0(), -box_y0(), -box_z_bot()])
                electronics_box();
else if (part == "lid")
    lid();
else
    assembled();
